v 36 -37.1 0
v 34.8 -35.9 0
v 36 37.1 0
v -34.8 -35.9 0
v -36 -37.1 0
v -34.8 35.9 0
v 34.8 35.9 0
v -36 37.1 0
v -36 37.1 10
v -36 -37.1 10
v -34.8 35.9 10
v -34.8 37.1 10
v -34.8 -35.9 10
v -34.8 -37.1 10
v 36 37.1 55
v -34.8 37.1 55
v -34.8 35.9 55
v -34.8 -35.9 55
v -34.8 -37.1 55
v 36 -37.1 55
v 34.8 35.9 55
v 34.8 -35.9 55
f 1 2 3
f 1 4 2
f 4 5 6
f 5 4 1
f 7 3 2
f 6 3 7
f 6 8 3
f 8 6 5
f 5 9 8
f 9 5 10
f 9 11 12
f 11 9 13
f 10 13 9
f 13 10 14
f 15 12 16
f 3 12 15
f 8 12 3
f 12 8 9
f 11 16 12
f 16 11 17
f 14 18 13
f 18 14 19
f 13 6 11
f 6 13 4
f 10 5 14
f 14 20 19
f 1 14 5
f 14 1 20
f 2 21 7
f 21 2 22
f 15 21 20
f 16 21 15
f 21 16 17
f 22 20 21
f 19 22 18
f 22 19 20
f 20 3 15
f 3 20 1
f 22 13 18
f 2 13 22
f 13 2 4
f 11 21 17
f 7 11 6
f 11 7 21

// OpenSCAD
// ============================================================
// hard.scad
// "ㅁ"자 사각 프레임 (4면 모두 닫힌 링).
// 바깥 기준 72mm(X) x 74.2mm(Y). 74.2mm 길이 면(좌/우, Y방향 벽) 중 -X쪽 벽만
// 높이 10mm, 나머지 3면(+X쪽 74.2mm 벽, 위/아래 72mm 벽)은 높이 55mm.
// * 벽 두께는 지정하신 값이 없어 이 프로젝트 전반에서 쓰인 기본값 1.2mm로 가정했습니다.
// * 74.2mm인 두 면(좌/우) 중 어느 쪽을 줄일지 지정이 없어 -X쪽으로 가정했습니다.
//   +X쪽이어야 하면 알려주세요.
// ============================================================

module hard() {
    outer_w = 72;  // 바깥 가로(X)
    outer_d = 74.2; // 바깥 세로(Y) (74 -> 74.2)
    wall_t  = 1.2; // 벽 두께 (가정값)

    z_tall  = 55;  // 나머지 3면 높이 (25 -> 55)
    z_short = 10;  // -X쪽 74.2mm 벽 높이 (25 -> 10로 축소)

    inner_w = outer_w - 2 * wall_t;

    // -X쪽 벽 (74.2mm 길이, Y방향), 높이 10mm
    color("SteelBlue")
        translate([-outer_w / 2, -outer_d / 2, 0])
            linear_extrude(height = z_short)
                square([wall_t, outer_d]);

    // +X쪽 벽 (74.2mm 길이, Y방향), 높이 55mm
    color("SteelBlue")
        translate([outer_w / 2 - wall_t, -outer_d / 2, 0])
            linear_extrude(height = z_tall)
                square([wall_t, outer_d]);

    // -Y쪽 벽 (72mm 안쪽 폭, X방향), 높이 55mm
    color("SteelBlue")
        translate([-inner_w / 2, -outer_d / 2, 0])
            linear_extrude(height = z_tall)
                square([inner_w, wall_t]);

    // +Y쪽 벽 (72mm 안쪽 폭, X방향), 높이 55mm
    color("SteelBlue")
        translate([-inner_w / 2, outer_d / 2 - wall_t, 0])
            linear_extrude(height = z_tall)
                square([inner_w, wall_t]);
}

hard();
